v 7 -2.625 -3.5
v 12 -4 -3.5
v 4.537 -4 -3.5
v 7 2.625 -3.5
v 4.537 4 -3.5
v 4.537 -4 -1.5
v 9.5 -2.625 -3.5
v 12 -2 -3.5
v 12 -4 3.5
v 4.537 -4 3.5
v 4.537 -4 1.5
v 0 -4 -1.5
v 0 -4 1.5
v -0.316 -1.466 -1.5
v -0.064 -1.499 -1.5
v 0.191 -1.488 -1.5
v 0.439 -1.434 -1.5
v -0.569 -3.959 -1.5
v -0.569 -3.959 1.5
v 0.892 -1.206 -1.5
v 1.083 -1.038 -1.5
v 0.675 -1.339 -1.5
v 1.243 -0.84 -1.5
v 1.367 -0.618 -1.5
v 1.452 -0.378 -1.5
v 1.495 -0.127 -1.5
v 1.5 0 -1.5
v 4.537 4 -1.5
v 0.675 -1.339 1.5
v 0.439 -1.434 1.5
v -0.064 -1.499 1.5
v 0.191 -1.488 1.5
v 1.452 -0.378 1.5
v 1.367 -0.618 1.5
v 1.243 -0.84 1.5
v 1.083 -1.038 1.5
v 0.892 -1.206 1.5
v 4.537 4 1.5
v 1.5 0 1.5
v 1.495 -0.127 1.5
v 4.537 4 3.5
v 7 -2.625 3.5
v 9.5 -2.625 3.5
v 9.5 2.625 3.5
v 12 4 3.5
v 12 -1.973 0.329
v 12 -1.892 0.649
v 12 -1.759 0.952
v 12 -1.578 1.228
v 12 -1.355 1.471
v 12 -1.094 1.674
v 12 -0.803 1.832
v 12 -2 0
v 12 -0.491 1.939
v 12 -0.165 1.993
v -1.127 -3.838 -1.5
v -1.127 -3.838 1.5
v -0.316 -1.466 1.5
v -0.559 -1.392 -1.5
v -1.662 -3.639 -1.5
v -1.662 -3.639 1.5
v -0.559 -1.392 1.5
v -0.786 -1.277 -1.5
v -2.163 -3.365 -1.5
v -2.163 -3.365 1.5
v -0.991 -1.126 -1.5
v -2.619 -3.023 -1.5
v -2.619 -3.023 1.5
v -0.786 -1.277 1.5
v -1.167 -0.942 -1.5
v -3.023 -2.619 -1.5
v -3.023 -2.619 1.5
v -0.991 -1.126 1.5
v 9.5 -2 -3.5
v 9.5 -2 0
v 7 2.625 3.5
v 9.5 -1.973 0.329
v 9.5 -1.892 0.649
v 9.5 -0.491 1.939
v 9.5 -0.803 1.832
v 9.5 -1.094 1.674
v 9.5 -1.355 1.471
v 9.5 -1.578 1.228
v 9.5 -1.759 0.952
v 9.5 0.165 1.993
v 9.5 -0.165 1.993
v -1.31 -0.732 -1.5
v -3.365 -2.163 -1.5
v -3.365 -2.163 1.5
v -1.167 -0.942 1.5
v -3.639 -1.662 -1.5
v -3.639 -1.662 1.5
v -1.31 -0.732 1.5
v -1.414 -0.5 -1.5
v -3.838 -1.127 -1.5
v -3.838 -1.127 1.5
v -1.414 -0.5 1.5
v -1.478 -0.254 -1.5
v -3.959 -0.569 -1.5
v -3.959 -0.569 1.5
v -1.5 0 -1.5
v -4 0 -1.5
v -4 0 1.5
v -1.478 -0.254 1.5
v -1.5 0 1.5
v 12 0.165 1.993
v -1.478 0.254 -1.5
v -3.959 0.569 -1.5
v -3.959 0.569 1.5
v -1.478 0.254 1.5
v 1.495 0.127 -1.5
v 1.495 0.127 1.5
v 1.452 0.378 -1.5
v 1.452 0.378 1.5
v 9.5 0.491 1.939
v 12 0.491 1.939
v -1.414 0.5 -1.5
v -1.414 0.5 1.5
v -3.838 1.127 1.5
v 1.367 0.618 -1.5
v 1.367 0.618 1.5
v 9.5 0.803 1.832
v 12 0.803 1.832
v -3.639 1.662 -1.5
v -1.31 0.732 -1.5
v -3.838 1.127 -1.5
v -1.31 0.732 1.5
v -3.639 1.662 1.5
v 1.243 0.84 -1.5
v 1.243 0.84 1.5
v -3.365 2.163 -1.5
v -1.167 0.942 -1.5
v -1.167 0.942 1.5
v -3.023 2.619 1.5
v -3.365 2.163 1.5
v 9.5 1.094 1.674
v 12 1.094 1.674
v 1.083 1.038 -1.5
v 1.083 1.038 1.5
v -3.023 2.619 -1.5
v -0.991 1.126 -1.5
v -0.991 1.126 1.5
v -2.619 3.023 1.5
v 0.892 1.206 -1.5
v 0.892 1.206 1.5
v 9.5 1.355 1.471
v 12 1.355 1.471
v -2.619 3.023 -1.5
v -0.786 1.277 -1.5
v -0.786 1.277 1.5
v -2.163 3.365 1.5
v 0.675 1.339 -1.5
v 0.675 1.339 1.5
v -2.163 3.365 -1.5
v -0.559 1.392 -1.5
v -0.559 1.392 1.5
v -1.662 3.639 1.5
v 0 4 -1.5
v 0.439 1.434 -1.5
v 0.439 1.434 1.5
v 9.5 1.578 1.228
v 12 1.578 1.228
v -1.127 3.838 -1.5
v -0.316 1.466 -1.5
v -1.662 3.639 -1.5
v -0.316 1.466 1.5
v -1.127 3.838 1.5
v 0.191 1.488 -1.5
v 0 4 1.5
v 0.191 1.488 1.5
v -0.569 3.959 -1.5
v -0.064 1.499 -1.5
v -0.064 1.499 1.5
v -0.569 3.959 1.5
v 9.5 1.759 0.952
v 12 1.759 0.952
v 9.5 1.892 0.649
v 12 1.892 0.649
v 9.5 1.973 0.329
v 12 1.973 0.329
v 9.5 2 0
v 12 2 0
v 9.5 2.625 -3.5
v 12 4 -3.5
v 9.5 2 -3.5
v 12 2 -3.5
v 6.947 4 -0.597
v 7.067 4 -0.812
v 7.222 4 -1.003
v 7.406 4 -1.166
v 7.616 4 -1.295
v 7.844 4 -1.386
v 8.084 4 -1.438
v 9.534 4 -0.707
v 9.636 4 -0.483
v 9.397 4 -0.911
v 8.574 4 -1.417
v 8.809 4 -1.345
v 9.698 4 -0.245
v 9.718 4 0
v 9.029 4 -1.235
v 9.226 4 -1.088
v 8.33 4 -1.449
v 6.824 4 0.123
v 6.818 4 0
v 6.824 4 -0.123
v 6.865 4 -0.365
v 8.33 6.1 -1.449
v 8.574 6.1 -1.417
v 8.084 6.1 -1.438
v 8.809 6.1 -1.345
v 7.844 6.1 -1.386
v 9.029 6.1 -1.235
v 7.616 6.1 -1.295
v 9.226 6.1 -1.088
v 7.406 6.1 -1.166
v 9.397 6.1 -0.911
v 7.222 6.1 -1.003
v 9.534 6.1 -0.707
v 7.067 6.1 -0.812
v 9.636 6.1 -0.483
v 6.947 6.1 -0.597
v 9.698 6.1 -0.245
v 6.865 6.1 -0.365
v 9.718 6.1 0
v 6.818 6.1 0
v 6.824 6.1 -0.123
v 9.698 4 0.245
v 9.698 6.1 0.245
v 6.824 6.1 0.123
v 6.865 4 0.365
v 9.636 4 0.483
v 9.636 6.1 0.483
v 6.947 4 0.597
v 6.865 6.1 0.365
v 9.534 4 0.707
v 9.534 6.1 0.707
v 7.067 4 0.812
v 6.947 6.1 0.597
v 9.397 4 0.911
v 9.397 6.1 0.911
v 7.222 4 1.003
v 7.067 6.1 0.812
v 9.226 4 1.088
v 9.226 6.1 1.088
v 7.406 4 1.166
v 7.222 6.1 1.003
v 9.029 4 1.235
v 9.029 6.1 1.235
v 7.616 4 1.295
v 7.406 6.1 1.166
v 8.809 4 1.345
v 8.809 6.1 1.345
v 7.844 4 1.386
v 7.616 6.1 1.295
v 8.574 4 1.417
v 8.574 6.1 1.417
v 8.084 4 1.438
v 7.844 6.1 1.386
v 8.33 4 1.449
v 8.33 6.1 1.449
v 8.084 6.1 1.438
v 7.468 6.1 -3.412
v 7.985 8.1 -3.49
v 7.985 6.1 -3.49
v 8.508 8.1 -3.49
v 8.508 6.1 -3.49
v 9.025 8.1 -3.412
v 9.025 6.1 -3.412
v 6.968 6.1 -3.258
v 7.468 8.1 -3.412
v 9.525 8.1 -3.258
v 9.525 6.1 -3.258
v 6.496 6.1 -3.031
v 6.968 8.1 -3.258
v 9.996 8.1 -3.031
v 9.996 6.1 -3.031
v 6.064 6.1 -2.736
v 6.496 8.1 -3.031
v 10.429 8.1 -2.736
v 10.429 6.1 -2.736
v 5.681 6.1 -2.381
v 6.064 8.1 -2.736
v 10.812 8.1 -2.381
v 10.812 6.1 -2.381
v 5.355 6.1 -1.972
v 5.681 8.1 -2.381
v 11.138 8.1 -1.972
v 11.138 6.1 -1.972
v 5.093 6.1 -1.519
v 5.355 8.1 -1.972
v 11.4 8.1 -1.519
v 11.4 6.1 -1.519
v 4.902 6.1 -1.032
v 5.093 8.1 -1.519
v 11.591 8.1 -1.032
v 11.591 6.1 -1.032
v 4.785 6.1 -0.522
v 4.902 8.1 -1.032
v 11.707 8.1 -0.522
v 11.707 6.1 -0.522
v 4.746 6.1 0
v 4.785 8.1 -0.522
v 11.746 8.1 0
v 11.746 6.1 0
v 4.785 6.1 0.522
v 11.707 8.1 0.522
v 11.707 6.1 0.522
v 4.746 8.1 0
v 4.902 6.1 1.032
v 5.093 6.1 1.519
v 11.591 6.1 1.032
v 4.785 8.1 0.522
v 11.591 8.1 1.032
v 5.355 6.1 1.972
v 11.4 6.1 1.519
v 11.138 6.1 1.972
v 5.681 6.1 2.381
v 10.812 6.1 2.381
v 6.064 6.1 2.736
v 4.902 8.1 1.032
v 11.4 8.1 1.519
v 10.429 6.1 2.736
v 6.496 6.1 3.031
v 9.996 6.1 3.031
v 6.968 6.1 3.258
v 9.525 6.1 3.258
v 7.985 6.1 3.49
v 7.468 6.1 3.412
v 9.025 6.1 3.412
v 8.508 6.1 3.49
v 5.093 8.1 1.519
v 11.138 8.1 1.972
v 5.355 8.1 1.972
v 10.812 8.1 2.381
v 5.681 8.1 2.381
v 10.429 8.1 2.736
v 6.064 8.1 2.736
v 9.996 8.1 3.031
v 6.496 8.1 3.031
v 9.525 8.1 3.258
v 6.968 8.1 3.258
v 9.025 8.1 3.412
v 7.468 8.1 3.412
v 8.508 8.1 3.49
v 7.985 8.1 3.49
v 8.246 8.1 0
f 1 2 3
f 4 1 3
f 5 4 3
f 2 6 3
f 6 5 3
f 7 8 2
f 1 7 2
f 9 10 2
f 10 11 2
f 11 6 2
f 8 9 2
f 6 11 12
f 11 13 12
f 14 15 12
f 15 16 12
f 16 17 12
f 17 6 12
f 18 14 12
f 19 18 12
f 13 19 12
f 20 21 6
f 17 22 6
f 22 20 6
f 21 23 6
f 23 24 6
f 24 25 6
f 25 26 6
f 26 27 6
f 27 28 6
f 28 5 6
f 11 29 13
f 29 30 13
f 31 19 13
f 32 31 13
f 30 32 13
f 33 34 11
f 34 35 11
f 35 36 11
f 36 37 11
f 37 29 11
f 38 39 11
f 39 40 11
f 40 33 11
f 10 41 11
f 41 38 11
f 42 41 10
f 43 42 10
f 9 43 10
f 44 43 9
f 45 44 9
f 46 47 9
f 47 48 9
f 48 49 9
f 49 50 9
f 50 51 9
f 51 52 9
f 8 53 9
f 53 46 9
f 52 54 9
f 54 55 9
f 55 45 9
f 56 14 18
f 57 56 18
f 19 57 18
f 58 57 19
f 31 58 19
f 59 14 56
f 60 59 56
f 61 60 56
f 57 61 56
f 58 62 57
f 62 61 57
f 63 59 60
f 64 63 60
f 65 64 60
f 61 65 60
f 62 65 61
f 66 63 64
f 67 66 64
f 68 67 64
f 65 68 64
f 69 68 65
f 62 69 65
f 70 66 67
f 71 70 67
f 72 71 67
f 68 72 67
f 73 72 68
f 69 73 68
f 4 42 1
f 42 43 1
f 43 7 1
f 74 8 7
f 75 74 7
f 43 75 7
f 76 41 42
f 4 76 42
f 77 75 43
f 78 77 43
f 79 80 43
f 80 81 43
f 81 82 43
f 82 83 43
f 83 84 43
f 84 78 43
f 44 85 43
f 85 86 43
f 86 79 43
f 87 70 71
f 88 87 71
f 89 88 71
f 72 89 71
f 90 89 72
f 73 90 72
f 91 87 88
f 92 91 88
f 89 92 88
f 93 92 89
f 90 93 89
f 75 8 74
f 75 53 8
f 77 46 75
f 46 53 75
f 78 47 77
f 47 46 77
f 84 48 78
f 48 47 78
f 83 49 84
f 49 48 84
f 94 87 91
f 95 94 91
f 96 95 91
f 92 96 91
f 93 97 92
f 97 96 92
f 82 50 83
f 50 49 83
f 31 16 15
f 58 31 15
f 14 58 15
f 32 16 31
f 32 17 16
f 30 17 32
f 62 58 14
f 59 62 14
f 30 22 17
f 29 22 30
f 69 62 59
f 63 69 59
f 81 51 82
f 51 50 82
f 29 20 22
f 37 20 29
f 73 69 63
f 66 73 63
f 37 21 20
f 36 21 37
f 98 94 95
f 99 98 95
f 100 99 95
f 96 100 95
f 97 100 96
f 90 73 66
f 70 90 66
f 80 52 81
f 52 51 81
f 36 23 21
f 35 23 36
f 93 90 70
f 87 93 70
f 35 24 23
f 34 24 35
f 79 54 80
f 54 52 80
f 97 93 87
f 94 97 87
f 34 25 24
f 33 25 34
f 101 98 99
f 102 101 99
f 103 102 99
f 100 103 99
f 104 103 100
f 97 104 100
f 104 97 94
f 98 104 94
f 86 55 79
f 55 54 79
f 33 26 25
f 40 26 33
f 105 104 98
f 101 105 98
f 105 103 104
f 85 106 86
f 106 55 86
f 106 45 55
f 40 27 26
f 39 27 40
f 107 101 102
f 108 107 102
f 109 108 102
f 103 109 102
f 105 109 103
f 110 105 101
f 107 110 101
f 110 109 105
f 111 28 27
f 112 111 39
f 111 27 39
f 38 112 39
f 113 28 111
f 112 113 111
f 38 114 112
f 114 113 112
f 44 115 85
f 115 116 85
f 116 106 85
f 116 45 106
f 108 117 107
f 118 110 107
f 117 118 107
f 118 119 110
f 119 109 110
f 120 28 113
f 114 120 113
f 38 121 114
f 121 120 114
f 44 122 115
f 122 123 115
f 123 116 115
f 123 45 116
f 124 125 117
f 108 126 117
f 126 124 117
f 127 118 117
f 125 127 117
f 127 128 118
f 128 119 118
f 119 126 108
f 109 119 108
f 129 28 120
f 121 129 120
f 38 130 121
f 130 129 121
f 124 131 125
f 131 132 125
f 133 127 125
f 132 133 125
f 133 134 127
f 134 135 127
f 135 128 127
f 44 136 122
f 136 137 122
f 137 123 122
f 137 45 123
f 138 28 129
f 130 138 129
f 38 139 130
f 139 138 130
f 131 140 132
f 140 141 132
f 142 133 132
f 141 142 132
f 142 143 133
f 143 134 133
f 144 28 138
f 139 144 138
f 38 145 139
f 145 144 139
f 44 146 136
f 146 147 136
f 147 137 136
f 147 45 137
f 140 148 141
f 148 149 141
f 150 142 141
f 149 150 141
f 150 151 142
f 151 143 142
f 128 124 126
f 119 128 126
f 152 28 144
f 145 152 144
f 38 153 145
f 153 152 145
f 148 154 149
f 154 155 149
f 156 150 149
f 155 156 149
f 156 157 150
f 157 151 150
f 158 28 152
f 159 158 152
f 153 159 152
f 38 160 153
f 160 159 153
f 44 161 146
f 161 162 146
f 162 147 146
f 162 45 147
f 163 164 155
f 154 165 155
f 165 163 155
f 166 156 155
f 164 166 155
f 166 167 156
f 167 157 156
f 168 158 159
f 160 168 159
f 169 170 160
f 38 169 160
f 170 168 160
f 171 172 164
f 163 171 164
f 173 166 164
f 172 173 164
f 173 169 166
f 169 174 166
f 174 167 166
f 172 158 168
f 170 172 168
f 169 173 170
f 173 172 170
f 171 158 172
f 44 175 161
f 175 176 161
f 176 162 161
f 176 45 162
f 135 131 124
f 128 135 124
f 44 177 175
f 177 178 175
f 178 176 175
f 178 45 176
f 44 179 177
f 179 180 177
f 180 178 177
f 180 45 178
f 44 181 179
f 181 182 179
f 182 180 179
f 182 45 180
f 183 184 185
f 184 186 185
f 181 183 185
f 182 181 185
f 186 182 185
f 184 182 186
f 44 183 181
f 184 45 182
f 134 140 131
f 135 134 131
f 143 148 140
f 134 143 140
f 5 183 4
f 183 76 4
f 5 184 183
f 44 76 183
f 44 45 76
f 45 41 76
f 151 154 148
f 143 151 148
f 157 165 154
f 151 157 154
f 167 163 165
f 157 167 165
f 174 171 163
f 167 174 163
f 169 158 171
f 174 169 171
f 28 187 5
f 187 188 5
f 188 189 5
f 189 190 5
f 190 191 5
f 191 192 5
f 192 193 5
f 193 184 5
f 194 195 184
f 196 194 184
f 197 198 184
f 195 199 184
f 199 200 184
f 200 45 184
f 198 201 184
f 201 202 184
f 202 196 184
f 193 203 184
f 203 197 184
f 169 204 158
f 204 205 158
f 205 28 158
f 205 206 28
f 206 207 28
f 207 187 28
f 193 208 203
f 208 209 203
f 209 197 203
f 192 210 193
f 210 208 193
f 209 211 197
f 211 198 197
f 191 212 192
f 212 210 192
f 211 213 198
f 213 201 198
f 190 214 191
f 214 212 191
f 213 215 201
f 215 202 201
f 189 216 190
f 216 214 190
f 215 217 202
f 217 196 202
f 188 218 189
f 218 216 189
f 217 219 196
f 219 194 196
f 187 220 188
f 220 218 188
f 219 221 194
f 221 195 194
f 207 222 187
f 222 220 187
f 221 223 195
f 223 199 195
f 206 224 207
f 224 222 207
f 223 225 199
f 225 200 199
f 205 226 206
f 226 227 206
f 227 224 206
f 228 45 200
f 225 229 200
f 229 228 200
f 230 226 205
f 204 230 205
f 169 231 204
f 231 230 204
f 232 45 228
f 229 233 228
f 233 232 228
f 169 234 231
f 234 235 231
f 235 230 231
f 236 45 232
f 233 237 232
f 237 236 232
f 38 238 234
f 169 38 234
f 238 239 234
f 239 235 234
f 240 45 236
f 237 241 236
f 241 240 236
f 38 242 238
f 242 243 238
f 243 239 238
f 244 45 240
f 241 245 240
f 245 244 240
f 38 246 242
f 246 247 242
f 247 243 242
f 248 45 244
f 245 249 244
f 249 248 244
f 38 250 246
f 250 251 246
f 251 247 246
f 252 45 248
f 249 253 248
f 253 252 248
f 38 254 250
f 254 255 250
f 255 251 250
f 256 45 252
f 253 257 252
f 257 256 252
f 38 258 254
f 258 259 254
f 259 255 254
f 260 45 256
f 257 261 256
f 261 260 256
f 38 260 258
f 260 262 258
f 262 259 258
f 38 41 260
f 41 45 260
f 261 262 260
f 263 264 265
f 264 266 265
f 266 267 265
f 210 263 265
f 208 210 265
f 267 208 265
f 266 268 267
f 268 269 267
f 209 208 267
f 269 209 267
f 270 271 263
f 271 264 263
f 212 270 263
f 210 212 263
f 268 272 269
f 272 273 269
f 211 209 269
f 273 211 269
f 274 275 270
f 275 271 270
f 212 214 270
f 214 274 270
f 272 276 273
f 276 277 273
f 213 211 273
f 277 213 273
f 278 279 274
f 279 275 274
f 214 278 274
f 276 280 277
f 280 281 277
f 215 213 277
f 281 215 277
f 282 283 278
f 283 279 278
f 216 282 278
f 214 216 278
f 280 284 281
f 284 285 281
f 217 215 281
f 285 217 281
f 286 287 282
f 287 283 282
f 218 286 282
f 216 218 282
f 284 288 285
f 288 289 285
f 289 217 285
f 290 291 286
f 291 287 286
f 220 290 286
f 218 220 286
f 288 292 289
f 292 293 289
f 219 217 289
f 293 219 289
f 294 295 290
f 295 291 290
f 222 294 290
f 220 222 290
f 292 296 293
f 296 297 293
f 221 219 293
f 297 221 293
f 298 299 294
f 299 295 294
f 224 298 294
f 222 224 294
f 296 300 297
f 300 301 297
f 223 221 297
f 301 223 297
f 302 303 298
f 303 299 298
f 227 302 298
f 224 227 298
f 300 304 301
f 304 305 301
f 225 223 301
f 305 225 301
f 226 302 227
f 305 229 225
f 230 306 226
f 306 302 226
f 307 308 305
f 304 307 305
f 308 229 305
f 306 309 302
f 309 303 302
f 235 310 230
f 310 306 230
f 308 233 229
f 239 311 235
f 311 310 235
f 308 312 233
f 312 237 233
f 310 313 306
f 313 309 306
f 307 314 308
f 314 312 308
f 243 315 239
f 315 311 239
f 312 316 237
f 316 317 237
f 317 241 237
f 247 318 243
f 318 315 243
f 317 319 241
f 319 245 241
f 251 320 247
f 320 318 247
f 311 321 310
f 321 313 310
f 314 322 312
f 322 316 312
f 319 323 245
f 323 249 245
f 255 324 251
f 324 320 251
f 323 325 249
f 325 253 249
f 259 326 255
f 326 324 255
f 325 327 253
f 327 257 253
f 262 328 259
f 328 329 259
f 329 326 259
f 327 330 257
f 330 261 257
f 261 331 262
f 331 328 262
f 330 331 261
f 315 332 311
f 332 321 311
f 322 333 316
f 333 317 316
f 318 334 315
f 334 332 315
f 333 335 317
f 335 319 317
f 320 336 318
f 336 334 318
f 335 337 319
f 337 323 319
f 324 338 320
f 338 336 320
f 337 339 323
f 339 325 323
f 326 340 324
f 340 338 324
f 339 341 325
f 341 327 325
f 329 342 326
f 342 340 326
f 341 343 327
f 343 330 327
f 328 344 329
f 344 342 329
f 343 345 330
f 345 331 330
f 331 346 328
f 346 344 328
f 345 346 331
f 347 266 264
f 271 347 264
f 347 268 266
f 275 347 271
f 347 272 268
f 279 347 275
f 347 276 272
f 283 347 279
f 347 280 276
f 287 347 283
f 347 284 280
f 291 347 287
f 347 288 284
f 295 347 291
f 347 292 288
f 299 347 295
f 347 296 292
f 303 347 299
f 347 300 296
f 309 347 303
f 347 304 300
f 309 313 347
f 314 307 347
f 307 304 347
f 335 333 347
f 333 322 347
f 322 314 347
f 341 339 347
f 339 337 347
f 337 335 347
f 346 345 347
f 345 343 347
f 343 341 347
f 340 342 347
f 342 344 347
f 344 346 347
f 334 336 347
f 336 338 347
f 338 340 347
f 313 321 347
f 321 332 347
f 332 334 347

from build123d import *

# Parameters (mm, degrees)
SKETCH1_R               = 1.5
BOSS_EXTRUDE1_DEPTH     = 1.5
SKETCH5_W               = 7.463090523
SKETCH5_H               = 8
BOSS_EXTRUDE2_DEPTH     = 3.5
CUT_EXTRUDE1_DEPTH      = 7
CUT_EXTRUDE1_DEPTH_BACK = 6
SKETCH2_W               = 2.5
SKETCH2_H               = 5.25
SKETCH3_R               = 2
CUT_EXTRUDE2_DEPTH      = 3
SKETCH6_W               = 5
SKETCH6_H               = 4
CUT_EXTRUDE3_DEPTH      = 3.5
SKETCH7_R               = 1.45
BOSS_EXTRUDE3_DEPTH     = 2.1
SKETCH8_R               = 3.5
BOSS_EXTRUDE4_DEPTH     = 2


with BuildPart() as part:
    # Sketch1 → Boss-Extrude1 (new, symmetric)
    with BuildSketch(Plane.XY):
        with BuildLine():
            Line((12, 4), (0, 4))
            ThreePointArc((0, 4), (-4, 0), (0, -4))
            Line((0, -4), (12, -4))
            Line((12, -4), (12, 4))
        make_face()
        Circle(SKETCH1_R, mode=Mode.SUBTRACT)
    extrude(amount=BOSS_EXTRUDE1_DEPTH, both=True)

    # Sketch5 → Boss-Extrude2 (add, symmetric)
    with BuildSketch(Plane.XY):
        with Locations((8.268454739, 0)):
            Rectangle(SKETCH5_W, SKETCH5_H)
    extrude(amount=BOSS_EXTRUDE2_DEPTH, both=True)

    # Sketch2 → Cut-Extrude1 (cut, two sides: drawn at the far end of the back side and taken through both)
    with BuildSketch(Plane.XY.offset(1.5).offset(-CUT_EXTRUDE1_DEPTH_BACK)):
        with Locations((8.25, 0)):
            Rectangle(SKETCH2_W, SKETCH2_H)
    extrude(amount=CUT_EXTRUDE1_DEPTH + CUT_EXTRUDE1_DEPTH_BACK, mode=Mode.SUBTRACT)

    # Sketch3 → Cut-Extrude2 (cut)
    with BuildSketch(Plane(origin=(12, 0, 0), x_dir=(0, 0, -1), z_dir=(1, 0, 0))):
        with Locations(Location((0, 0, 0), (0, 0, 90))):
            Circle(SKETCH3_R)
    extrude(amount=-CUT_EXTRUDE2_DEPTH, mode=Mode.SUBTRACT)

    # Sketch6 → Cut-Extrude3 (cut)
    with BuildSketch(Plane(origin=(0, 0, -3.5), x_dir=(-1, 0, 0), z_dir=(0, 0, -1))):
        with Locations((-12, 0)):
            Rectangle(SKETCH6_W, SKETCH6_H)
    extrude(amount=-CUT_EXTRUDE3_DEPTH, mode=Mode.SUBTRACT)

    # Sketch7 → Boss-Extrude3 (add)
    with BuildSketch(Plane(origin=(0, 4, 0), x_dir=(1, 0, 0), z_dir=(0, 1, 0))):
        with Locations(Location((8.268454739, 0, 0), (0, 0, 180))):
            Circle(SKETCH7_R)
    extrude(amount=BOSS_EXTRUDE3_DEPTH)

    # Sketch8 → Boss-Extrude4 (add)
    with BuildSketch(Plane(origin=(0, 6.1, 0), x_dir=(1, 0, 0), z_dir=(0, 1, 0))):
        with Locations(Location((8.246364187, 0, 0), (0, 0, 180))):
            Circle(SKETCH8_R)
    extrude(amount=BOSS_EXTRUDE4_DEPTH)


solid = part.part
